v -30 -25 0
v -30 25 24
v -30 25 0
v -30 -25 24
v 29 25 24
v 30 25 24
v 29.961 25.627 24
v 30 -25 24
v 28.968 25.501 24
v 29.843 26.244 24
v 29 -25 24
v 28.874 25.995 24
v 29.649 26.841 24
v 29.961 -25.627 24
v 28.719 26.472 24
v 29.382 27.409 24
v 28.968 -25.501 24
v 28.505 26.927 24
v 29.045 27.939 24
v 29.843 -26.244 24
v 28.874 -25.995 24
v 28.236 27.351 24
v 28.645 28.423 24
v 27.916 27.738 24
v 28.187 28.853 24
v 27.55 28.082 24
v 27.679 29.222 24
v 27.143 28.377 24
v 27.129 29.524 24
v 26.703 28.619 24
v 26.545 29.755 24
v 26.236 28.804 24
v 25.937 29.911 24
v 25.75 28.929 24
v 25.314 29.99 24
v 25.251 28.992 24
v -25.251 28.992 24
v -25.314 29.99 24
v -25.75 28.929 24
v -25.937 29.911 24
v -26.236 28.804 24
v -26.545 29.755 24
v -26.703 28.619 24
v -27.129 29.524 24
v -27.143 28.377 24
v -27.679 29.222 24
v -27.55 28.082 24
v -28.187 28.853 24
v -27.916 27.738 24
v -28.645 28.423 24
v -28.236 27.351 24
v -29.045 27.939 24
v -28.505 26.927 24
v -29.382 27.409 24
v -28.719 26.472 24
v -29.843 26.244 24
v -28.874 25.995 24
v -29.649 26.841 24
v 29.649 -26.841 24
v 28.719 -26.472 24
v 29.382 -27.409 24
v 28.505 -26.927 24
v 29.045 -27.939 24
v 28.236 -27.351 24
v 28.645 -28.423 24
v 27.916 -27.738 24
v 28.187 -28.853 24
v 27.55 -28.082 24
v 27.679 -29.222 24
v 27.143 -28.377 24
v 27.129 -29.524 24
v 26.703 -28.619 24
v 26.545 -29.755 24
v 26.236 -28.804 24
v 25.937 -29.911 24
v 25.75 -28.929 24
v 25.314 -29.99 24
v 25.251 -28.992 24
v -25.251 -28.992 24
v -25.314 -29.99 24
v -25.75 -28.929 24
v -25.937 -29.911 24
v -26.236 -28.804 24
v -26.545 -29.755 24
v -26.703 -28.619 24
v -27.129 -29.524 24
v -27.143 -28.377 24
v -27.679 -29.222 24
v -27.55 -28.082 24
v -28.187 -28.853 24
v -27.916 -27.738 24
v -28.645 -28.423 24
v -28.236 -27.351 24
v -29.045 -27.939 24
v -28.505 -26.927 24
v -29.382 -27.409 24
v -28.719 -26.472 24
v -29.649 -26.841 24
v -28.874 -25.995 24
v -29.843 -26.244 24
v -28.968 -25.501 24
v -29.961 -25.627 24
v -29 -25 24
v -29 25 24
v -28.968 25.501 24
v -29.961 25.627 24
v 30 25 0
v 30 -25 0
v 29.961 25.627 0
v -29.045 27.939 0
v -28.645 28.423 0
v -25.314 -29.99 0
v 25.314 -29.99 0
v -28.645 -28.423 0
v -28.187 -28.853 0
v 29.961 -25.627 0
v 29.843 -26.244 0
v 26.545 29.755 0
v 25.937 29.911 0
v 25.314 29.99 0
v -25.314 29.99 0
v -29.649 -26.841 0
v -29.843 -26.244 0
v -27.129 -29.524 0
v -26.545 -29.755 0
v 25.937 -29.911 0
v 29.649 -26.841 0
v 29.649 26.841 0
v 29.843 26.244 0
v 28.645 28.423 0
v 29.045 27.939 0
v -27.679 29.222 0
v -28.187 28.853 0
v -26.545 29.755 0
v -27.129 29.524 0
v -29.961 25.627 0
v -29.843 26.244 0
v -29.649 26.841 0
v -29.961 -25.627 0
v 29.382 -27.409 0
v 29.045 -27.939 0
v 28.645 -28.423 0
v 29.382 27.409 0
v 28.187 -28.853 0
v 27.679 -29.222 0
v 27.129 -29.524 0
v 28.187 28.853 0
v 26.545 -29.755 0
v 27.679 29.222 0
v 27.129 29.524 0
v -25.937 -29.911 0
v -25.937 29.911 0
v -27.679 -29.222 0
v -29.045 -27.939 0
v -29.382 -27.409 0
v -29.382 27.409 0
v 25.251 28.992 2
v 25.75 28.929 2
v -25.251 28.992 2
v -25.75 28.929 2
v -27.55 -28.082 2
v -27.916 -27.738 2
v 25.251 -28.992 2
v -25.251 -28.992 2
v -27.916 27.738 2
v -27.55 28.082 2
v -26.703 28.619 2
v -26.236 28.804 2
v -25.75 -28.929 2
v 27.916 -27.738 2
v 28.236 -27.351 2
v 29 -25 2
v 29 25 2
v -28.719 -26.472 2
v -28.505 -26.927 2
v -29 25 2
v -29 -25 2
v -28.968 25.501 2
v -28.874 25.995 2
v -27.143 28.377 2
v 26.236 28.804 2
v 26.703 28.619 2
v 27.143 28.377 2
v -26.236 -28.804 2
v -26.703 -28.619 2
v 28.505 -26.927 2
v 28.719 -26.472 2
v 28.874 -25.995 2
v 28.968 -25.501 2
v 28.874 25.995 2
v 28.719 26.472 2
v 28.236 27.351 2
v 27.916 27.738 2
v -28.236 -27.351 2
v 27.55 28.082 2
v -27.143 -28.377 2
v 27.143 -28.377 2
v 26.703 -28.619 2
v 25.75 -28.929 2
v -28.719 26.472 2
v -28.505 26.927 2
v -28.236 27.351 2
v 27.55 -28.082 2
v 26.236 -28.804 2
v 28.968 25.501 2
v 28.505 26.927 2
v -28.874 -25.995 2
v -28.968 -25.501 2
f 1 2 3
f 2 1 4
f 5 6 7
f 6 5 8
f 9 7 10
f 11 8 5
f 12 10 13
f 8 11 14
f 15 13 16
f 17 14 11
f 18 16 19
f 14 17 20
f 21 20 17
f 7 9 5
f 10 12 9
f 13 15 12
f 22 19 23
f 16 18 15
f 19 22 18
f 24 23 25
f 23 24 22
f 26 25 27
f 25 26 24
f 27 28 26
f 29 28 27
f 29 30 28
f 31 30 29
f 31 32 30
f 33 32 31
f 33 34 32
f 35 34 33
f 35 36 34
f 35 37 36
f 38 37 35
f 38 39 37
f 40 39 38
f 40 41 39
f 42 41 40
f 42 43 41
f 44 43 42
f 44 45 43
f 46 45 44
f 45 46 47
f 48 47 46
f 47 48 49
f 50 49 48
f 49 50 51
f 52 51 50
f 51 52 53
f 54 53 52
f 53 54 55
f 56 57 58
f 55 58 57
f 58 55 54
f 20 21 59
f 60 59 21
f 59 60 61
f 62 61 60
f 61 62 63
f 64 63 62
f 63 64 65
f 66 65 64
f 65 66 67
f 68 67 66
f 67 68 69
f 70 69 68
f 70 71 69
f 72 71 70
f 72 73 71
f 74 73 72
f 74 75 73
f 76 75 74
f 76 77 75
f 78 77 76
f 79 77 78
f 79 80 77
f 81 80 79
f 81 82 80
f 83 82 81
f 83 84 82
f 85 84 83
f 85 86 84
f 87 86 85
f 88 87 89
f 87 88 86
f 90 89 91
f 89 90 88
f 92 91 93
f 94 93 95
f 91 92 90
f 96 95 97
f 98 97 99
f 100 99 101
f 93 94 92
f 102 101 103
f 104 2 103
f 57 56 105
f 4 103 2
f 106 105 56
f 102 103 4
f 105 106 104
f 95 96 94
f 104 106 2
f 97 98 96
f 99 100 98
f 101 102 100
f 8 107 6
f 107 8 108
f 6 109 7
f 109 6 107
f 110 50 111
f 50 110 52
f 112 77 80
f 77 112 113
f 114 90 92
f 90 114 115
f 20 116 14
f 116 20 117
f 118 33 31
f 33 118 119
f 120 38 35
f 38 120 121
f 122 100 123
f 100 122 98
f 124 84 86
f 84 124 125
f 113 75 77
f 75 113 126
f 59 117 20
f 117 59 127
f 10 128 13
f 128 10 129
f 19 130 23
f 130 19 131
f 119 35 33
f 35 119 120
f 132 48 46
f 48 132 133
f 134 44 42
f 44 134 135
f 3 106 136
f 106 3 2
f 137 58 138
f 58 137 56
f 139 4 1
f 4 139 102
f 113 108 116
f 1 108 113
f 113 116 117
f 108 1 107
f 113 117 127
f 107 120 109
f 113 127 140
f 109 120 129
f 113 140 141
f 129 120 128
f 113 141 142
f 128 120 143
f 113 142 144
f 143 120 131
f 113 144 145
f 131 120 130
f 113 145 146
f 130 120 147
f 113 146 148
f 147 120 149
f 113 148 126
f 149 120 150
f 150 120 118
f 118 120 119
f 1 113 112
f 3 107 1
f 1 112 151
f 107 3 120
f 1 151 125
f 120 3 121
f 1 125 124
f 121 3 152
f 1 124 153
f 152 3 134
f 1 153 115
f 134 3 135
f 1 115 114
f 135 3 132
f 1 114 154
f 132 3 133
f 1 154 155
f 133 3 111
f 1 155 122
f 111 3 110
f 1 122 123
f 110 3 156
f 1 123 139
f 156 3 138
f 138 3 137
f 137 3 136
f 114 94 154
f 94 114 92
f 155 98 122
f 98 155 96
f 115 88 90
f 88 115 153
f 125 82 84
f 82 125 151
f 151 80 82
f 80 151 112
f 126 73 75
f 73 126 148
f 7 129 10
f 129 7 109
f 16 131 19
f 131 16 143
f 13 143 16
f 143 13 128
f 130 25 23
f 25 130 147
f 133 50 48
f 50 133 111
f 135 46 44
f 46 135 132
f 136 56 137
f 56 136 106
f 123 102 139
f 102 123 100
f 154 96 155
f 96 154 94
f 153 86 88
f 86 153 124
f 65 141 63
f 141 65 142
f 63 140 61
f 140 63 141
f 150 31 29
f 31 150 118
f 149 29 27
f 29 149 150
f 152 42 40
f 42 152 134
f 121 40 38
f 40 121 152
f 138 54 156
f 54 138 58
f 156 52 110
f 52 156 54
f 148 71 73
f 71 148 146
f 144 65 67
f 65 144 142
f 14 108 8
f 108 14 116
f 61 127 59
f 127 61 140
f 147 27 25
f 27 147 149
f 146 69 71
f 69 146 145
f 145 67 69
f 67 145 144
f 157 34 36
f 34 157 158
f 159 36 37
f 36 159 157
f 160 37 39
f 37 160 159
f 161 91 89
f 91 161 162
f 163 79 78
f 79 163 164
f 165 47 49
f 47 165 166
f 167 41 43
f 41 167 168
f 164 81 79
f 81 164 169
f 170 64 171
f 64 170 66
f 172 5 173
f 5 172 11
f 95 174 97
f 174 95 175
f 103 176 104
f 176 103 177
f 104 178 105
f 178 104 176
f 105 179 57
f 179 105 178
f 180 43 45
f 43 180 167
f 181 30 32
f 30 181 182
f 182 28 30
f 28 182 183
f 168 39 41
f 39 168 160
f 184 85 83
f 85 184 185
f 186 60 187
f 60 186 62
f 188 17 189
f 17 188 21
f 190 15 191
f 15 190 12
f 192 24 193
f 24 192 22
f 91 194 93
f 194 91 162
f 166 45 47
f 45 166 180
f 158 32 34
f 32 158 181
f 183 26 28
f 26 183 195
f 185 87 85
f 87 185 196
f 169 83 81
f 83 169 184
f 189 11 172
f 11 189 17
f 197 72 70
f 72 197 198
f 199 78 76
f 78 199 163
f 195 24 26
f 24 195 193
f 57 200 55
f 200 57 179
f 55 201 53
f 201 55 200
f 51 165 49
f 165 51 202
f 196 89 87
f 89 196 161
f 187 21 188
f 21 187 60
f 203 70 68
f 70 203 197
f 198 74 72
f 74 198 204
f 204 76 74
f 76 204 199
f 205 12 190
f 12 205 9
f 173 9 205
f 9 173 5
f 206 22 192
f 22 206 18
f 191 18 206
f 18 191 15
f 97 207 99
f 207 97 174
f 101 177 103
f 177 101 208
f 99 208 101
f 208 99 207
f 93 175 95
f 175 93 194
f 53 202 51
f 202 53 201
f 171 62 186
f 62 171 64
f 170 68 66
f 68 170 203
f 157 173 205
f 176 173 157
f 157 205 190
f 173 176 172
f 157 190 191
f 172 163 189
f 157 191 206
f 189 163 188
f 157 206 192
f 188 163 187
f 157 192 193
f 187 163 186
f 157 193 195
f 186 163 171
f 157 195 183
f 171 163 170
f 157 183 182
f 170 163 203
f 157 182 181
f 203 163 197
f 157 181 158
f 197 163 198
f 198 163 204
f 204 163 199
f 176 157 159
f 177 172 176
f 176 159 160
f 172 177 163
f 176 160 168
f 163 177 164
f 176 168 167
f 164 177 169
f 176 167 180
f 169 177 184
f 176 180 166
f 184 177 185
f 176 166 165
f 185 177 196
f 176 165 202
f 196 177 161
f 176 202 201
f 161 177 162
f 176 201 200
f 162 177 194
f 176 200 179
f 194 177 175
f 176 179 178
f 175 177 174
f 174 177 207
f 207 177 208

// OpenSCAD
$fn = 50;


difference() {
	union() {
		hull() {
			translate(v = [-25.0000000000, 25.0000000000, 0]) {
				cylinder(h = 24, r = 5);
			}
			translate(v = [25.0000000000, 25.0000000000, 0]) {
				cylinder(h = 24, r = 5);
			}
			translate(v = [-25.0000000000, -25.0000000000, 0]) {
				cylinder(h = 24, r = 5);
			}
			translate(v = [25.0000000000, -25.0000000000, 0]) {
				cylinder(h = 24, r = 5);
			}
		}
	}
	union() {
		translate(v = [0, 0, 2]) {
			#hull() {
				translate(v = [-25.0000000000, 25.0000000000, 0]) {
					cylinder(h = 22, r = 4);
				}
				translate(v = [25.0000000000, 25.0000000000, 0]) {
					cylinder(h = 22, r = 4);
				}
				translate(v = [-25.0000000000, -25.0000000000, 0]) {
					cylinder(h = 22, r = 4);
				}
				translate(v = [25.0000000000, -25.0000000000, 0]) {
					cylinder(h = 22, r = 4);
				}
			}
		}
	}
}
